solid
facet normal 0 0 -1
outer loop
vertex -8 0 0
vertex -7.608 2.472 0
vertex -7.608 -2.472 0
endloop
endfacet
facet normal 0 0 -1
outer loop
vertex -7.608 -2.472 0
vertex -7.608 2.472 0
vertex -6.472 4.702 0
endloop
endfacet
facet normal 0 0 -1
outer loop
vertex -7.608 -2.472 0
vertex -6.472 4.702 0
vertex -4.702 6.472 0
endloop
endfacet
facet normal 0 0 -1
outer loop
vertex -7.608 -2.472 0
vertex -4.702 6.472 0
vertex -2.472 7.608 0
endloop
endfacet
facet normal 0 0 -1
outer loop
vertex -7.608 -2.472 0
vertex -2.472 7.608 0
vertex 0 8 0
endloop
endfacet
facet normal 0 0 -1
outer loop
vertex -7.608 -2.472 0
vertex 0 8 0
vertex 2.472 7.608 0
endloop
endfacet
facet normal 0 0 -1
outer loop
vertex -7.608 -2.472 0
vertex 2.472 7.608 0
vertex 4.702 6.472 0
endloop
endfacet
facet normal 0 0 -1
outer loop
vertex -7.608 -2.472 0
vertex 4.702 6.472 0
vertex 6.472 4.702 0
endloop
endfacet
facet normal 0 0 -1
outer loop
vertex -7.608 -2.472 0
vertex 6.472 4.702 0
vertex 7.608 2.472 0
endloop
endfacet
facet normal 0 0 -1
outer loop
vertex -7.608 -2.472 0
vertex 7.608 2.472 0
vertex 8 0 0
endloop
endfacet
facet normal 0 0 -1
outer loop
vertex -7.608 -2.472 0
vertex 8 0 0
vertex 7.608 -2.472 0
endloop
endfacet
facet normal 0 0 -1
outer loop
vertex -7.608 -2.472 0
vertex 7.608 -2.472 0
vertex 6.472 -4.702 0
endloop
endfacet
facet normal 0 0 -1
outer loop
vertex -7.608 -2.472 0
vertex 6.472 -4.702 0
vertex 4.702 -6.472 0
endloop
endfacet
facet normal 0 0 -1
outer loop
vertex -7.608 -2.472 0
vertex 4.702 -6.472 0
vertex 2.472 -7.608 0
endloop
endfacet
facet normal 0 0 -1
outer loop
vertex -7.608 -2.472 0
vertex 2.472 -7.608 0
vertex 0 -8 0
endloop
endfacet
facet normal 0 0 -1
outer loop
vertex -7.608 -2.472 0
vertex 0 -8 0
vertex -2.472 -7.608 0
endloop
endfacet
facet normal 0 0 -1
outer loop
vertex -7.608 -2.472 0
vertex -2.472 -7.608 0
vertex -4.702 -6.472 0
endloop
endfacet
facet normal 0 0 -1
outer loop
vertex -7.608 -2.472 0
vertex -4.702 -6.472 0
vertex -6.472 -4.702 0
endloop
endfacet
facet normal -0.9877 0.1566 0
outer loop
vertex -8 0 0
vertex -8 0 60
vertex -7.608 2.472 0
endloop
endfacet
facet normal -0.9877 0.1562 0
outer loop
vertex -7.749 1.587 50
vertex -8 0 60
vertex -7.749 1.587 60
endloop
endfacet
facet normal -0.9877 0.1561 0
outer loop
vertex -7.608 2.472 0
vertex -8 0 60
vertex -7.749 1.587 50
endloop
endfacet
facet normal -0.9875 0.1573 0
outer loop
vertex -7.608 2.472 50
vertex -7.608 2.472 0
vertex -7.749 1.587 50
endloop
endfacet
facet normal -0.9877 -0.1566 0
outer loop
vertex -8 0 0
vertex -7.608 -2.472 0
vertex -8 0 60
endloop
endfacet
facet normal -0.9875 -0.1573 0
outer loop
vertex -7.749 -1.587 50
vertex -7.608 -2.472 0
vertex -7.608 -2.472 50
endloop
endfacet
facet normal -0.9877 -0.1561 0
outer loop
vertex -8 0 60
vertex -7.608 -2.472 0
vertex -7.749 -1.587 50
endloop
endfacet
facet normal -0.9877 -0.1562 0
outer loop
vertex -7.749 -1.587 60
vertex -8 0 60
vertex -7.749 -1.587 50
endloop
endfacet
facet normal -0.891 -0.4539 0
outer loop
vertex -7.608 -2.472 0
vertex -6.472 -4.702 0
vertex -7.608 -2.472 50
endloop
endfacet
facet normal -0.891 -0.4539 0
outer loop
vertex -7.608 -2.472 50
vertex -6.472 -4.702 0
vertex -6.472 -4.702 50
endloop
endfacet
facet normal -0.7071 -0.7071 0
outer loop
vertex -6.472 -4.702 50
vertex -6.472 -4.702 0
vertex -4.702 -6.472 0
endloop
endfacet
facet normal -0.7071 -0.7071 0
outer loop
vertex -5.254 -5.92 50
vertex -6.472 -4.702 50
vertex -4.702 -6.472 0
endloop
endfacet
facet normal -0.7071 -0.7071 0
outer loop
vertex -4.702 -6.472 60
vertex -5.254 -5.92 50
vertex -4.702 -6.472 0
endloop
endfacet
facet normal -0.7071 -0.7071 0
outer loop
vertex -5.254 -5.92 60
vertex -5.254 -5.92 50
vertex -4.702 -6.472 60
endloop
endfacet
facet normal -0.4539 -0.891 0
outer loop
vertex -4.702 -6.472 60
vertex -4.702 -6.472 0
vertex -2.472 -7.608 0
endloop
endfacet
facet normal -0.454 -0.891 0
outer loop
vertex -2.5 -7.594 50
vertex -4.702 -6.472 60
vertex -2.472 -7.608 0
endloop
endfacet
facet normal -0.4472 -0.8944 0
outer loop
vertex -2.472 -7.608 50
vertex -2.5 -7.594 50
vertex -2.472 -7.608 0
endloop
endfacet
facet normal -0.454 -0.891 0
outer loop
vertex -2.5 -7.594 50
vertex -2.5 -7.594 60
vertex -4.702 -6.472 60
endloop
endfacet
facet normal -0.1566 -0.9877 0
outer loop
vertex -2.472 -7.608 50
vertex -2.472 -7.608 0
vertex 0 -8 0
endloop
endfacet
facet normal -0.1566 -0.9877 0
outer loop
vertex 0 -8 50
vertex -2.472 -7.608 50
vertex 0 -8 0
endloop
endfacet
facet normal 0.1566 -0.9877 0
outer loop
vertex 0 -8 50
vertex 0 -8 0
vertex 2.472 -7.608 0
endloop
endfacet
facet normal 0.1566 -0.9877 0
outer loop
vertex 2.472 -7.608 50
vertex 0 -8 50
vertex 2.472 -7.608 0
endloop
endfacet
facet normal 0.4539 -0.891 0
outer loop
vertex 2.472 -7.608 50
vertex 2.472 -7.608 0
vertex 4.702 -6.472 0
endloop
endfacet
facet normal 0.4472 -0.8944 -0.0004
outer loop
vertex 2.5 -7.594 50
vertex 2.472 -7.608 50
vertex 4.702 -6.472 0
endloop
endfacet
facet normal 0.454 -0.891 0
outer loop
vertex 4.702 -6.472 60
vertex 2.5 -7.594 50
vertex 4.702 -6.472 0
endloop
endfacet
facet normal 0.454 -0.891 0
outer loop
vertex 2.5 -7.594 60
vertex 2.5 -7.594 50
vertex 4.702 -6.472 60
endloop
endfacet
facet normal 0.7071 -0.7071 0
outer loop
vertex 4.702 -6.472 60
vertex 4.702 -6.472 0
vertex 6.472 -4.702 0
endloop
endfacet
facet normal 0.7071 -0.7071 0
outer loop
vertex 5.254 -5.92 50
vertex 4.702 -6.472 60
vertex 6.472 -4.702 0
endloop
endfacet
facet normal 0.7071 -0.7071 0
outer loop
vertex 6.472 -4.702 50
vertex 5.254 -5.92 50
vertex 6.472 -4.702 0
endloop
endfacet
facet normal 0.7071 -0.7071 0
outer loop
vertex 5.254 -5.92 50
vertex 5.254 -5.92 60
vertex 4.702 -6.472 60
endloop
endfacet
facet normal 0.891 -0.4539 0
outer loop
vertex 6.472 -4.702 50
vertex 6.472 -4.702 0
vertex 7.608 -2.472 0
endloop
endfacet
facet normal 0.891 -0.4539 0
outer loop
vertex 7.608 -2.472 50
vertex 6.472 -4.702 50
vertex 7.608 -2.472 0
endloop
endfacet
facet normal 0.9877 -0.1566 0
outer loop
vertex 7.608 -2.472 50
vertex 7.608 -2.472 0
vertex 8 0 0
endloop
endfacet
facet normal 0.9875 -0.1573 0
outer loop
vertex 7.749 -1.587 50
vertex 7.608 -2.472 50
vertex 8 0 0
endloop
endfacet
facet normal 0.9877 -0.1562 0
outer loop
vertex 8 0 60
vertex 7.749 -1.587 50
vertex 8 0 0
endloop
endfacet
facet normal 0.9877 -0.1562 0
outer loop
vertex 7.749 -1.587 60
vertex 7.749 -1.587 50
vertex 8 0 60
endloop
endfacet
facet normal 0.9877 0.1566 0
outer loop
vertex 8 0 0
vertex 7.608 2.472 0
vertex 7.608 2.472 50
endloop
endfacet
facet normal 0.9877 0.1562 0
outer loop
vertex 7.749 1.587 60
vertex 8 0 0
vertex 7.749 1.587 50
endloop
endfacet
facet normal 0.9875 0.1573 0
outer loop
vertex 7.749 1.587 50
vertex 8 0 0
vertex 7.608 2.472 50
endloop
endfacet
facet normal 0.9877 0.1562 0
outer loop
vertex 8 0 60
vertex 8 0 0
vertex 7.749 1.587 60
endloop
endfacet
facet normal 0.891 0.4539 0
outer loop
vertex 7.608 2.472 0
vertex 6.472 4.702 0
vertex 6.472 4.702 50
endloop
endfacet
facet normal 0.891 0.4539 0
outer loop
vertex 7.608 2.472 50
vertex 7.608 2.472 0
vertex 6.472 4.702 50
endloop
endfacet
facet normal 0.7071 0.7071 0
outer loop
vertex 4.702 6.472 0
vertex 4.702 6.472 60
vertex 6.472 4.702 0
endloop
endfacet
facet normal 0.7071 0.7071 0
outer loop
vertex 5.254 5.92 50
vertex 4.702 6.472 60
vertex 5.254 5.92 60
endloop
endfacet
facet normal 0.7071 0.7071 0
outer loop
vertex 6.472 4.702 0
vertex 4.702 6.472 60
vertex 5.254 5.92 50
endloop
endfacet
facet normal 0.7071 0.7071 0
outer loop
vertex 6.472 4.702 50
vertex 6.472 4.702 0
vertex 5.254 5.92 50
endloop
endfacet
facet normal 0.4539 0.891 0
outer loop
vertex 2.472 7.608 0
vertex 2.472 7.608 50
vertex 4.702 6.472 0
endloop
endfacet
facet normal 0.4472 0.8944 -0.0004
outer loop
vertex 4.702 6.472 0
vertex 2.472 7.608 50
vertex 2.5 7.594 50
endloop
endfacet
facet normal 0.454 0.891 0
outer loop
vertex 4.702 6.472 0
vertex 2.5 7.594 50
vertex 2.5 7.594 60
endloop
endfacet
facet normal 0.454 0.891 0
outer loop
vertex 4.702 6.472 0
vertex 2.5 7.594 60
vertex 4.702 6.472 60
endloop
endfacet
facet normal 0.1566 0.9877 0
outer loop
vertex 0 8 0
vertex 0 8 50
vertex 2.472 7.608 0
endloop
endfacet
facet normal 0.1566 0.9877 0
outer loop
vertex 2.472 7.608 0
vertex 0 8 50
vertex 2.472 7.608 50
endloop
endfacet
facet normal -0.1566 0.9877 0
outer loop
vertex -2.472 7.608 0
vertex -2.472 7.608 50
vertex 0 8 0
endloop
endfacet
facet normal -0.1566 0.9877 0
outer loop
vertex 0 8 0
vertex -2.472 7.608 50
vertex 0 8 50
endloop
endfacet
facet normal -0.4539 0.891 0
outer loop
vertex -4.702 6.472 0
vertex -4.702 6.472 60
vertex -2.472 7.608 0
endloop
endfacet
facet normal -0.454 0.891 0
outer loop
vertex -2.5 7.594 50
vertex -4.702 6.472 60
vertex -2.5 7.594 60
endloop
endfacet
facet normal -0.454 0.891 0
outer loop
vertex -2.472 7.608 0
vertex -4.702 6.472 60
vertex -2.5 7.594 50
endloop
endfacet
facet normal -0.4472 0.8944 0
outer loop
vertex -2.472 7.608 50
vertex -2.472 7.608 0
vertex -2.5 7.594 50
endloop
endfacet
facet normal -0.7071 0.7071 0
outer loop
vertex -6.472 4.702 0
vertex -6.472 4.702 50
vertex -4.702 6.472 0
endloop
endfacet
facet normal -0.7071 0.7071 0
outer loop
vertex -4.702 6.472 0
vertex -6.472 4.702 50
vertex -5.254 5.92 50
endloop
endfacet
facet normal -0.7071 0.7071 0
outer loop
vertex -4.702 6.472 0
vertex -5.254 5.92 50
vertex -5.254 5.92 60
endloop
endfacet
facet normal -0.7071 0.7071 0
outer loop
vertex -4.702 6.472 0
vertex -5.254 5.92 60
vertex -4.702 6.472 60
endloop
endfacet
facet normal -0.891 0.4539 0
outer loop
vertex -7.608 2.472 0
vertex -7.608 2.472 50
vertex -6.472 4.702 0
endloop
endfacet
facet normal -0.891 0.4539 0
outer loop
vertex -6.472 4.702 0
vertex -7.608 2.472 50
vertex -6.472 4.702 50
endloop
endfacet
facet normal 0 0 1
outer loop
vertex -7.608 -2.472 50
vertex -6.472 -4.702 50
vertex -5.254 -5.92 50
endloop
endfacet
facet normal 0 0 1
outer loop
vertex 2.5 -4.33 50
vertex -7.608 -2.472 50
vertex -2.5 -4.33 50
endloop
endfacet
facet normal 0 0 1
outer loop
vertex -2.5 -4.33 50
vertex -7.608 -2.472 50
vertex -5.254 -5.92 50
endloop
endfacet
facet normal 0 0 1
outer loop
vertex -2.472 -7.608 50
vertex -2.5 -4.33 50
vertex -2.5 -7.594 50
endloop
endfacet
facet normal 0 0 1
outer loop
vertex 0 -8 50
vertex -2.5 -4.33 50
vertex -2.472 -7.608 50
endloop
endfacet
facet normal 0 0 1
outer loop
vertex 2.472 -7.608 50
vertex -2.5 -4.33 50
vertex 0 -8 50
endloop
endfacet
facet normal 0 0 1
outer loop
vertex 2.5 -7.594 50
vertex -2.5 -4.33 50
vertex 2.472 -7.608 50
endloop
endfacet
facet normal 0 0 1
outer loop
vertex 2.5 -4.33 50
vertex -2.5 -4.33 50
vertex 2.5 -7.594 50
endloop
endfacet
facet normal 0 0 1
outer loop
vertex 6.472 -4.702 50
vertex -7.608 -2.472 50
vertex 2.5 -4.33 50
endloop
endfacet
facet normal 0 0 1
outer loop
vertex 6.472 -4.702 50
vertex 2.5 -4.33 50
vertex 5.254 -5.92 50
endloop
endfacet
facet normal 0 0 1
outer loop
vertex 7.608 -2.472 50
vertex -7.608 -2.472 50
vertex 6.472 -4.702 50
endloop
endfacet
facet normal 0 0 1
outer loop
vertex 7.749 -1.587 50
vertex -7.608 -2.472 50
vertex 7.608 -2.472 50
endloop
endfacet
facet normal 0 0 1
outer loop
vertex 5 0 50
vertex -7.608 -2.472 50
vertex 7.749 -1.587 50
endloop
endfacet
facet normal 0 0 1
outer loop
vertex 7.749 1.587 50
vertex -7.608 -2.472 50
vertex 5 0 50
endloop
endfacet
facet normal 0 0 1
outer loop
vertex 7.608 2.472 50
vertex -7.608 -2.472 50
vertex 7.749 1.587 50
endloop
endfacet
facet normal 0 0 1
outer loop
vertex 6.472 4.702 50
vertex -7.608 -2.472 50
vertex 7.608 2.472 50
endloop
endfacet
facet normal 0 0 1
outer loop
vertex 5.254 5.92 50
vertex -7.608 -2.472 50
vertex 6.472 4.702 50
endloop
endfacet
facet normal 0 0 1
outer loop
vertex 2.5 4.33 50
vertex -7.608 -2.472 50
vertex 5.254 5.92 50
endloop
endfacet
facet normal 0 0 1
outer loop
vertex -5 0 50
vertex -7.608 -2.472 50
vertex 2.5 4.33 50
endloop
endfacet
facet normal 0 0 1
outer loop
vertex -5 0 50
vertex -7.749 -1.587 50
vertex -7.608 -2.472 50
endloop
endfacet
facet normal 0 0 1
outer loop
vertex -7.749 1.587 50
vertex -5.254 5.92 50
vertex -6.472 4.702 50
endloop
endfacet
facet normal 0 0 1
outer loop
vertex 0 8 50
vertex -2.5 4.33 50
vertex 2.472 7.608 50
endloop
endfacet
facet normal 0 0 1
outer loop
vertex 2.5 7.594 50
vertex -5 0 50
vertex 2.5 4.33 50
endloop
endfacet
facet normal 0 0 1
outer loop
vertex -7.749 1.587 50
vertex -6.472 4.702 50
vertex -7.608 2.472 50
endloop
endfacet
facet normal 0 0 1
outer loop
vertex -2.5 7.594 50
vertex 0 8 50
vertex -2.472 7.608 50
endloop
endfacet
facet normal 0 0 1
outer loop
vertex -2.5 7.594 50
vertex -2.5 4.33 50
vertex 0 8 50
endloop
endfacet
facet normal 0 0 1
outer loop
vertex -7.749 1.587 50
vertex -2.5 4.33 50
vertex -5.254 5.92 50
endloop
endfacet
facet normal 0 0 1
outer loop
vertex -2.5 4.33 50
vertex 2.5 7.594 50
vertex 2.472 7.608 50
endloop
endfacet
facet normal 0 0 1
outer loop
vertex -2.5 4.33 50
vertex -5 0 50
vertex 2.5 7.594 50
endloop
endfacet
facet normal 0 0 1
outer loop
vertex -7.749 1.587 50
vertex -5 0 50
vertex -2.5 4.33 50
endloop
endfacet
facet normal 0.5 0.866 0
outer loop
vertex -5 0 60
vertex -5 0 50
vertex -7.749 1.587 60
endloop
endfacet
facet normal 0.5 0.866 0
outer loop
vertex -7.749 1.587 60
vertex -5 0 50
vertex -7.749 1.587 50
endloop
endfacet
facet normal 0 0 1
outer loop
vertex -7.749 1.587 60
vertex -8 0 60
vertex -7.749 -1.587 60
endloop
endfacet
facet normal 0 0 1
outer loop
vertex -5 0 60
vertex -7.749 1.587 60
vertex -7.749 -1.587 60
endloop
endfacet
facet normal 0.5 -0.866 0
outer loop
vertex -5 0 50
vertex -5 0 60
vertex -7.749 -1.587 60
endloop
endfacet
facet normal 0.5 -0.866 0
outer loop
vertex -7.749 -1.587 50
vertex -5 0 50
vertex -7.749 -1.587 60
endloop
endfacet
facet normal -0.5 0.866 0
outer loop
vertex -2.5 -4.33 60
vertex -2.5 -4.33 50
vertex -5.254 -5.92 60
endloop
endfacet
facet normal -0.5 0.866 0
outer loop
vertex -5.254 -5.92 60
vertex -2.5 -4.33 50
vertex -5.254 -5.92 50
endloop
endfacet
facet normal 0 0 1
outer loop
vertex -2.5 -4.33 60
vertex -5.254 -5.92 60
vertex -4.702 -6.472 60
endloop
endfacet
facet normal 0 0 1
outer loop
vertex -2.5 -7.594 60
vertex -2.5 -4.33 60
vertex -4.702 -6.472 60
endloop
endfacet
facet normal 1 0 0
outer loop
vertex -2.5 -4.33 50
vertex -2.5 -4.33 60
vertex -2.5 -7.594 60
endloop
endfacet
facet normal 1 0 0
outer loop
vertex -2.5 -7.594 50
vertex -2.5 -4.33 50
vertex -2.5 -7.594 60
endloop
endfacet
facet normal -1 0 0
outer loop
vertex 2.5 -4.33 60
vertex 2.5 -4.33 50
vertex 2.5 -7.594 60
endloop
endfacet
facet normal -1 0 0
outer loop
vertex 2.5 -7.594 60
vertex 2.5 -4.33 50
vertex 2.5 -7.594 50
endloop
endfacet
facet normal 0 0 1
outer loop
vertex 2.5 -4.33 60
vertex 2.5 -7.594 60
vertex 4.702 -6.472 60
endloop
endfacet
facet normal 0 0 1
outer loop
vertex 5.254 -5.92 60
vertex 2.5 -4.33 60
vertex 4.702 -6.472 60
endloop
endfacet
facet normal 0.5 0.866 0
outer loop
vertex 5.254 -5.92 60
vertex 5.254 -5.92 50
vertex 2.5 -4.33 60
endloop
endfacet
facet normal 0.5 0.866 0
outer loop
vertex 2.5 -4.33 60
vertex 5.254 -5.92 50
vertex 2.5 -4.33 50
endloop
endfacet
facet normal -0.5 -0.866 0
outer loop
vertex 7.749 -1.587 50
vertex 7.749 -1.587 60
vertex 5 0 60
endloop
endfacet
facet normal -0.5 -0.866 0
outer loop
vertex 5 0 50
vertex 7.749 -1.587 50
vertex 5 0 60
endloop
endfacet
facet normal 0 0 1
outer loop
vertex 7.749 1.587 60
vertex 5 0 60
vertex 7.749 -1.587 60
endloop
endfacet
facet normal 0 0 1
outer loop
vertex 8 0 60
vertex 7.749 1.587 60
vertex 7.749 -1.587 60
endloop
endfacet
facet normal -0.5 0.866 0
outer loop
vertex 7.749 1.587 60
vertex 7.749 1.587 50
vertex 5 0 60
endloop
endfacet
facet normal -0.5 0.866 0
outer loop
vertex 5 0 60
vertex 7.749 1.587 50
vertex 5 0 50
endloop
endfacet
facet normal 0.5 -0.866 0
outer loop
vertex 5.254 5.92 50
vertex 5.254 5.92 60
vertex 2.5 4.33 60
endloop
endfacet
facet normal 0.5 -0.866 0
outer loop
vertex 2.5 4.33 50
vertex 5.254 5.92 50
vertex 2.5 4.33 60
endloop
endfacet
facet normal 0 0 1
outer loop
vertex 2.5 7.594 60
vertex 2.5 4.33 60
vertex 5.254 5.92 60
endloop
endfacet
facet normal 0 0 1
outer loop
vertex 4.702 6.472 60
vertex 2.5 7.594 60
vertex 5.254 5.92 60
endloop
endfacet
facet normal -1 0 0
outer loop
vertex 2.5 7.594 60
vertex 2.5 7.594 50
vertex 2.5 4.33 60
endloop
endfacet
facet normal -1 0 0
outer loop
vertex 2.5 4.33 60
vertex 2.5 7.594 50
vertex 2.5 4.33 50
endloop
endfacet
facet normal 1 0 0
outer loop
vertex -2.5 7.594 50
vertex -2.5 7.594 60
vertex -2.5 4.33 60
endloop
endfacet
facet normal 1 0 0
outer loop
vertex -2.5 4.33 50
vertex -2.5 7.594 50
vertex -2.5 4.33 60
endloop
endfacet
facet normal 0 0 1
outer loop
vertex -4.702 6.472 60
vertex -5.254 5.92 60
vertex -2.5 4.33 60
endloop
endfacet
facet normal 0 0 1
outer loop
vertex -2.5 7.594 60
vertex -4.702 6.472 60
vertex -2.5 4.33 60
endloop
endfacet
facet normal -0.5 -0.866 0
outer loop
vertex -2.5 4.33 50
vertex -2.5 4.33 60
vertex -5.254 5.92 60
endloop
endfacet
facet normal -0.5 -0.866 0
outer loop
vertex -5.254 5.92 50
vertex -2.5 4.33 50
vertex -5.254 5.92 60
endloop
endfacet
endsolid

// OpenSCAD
$fn = 20;

difference(){
difference(){
cylinder(h = 60, r = 8);

for ( i = [0 : 5] )
{
    rotate( i * 360 / 6, [0, 0, 1])
	translate([0,5,55])cube([5,6,10], center = true);
    
}

}

translate([0,0,50])cylinder(h = 20 , r = 2.4);

}
